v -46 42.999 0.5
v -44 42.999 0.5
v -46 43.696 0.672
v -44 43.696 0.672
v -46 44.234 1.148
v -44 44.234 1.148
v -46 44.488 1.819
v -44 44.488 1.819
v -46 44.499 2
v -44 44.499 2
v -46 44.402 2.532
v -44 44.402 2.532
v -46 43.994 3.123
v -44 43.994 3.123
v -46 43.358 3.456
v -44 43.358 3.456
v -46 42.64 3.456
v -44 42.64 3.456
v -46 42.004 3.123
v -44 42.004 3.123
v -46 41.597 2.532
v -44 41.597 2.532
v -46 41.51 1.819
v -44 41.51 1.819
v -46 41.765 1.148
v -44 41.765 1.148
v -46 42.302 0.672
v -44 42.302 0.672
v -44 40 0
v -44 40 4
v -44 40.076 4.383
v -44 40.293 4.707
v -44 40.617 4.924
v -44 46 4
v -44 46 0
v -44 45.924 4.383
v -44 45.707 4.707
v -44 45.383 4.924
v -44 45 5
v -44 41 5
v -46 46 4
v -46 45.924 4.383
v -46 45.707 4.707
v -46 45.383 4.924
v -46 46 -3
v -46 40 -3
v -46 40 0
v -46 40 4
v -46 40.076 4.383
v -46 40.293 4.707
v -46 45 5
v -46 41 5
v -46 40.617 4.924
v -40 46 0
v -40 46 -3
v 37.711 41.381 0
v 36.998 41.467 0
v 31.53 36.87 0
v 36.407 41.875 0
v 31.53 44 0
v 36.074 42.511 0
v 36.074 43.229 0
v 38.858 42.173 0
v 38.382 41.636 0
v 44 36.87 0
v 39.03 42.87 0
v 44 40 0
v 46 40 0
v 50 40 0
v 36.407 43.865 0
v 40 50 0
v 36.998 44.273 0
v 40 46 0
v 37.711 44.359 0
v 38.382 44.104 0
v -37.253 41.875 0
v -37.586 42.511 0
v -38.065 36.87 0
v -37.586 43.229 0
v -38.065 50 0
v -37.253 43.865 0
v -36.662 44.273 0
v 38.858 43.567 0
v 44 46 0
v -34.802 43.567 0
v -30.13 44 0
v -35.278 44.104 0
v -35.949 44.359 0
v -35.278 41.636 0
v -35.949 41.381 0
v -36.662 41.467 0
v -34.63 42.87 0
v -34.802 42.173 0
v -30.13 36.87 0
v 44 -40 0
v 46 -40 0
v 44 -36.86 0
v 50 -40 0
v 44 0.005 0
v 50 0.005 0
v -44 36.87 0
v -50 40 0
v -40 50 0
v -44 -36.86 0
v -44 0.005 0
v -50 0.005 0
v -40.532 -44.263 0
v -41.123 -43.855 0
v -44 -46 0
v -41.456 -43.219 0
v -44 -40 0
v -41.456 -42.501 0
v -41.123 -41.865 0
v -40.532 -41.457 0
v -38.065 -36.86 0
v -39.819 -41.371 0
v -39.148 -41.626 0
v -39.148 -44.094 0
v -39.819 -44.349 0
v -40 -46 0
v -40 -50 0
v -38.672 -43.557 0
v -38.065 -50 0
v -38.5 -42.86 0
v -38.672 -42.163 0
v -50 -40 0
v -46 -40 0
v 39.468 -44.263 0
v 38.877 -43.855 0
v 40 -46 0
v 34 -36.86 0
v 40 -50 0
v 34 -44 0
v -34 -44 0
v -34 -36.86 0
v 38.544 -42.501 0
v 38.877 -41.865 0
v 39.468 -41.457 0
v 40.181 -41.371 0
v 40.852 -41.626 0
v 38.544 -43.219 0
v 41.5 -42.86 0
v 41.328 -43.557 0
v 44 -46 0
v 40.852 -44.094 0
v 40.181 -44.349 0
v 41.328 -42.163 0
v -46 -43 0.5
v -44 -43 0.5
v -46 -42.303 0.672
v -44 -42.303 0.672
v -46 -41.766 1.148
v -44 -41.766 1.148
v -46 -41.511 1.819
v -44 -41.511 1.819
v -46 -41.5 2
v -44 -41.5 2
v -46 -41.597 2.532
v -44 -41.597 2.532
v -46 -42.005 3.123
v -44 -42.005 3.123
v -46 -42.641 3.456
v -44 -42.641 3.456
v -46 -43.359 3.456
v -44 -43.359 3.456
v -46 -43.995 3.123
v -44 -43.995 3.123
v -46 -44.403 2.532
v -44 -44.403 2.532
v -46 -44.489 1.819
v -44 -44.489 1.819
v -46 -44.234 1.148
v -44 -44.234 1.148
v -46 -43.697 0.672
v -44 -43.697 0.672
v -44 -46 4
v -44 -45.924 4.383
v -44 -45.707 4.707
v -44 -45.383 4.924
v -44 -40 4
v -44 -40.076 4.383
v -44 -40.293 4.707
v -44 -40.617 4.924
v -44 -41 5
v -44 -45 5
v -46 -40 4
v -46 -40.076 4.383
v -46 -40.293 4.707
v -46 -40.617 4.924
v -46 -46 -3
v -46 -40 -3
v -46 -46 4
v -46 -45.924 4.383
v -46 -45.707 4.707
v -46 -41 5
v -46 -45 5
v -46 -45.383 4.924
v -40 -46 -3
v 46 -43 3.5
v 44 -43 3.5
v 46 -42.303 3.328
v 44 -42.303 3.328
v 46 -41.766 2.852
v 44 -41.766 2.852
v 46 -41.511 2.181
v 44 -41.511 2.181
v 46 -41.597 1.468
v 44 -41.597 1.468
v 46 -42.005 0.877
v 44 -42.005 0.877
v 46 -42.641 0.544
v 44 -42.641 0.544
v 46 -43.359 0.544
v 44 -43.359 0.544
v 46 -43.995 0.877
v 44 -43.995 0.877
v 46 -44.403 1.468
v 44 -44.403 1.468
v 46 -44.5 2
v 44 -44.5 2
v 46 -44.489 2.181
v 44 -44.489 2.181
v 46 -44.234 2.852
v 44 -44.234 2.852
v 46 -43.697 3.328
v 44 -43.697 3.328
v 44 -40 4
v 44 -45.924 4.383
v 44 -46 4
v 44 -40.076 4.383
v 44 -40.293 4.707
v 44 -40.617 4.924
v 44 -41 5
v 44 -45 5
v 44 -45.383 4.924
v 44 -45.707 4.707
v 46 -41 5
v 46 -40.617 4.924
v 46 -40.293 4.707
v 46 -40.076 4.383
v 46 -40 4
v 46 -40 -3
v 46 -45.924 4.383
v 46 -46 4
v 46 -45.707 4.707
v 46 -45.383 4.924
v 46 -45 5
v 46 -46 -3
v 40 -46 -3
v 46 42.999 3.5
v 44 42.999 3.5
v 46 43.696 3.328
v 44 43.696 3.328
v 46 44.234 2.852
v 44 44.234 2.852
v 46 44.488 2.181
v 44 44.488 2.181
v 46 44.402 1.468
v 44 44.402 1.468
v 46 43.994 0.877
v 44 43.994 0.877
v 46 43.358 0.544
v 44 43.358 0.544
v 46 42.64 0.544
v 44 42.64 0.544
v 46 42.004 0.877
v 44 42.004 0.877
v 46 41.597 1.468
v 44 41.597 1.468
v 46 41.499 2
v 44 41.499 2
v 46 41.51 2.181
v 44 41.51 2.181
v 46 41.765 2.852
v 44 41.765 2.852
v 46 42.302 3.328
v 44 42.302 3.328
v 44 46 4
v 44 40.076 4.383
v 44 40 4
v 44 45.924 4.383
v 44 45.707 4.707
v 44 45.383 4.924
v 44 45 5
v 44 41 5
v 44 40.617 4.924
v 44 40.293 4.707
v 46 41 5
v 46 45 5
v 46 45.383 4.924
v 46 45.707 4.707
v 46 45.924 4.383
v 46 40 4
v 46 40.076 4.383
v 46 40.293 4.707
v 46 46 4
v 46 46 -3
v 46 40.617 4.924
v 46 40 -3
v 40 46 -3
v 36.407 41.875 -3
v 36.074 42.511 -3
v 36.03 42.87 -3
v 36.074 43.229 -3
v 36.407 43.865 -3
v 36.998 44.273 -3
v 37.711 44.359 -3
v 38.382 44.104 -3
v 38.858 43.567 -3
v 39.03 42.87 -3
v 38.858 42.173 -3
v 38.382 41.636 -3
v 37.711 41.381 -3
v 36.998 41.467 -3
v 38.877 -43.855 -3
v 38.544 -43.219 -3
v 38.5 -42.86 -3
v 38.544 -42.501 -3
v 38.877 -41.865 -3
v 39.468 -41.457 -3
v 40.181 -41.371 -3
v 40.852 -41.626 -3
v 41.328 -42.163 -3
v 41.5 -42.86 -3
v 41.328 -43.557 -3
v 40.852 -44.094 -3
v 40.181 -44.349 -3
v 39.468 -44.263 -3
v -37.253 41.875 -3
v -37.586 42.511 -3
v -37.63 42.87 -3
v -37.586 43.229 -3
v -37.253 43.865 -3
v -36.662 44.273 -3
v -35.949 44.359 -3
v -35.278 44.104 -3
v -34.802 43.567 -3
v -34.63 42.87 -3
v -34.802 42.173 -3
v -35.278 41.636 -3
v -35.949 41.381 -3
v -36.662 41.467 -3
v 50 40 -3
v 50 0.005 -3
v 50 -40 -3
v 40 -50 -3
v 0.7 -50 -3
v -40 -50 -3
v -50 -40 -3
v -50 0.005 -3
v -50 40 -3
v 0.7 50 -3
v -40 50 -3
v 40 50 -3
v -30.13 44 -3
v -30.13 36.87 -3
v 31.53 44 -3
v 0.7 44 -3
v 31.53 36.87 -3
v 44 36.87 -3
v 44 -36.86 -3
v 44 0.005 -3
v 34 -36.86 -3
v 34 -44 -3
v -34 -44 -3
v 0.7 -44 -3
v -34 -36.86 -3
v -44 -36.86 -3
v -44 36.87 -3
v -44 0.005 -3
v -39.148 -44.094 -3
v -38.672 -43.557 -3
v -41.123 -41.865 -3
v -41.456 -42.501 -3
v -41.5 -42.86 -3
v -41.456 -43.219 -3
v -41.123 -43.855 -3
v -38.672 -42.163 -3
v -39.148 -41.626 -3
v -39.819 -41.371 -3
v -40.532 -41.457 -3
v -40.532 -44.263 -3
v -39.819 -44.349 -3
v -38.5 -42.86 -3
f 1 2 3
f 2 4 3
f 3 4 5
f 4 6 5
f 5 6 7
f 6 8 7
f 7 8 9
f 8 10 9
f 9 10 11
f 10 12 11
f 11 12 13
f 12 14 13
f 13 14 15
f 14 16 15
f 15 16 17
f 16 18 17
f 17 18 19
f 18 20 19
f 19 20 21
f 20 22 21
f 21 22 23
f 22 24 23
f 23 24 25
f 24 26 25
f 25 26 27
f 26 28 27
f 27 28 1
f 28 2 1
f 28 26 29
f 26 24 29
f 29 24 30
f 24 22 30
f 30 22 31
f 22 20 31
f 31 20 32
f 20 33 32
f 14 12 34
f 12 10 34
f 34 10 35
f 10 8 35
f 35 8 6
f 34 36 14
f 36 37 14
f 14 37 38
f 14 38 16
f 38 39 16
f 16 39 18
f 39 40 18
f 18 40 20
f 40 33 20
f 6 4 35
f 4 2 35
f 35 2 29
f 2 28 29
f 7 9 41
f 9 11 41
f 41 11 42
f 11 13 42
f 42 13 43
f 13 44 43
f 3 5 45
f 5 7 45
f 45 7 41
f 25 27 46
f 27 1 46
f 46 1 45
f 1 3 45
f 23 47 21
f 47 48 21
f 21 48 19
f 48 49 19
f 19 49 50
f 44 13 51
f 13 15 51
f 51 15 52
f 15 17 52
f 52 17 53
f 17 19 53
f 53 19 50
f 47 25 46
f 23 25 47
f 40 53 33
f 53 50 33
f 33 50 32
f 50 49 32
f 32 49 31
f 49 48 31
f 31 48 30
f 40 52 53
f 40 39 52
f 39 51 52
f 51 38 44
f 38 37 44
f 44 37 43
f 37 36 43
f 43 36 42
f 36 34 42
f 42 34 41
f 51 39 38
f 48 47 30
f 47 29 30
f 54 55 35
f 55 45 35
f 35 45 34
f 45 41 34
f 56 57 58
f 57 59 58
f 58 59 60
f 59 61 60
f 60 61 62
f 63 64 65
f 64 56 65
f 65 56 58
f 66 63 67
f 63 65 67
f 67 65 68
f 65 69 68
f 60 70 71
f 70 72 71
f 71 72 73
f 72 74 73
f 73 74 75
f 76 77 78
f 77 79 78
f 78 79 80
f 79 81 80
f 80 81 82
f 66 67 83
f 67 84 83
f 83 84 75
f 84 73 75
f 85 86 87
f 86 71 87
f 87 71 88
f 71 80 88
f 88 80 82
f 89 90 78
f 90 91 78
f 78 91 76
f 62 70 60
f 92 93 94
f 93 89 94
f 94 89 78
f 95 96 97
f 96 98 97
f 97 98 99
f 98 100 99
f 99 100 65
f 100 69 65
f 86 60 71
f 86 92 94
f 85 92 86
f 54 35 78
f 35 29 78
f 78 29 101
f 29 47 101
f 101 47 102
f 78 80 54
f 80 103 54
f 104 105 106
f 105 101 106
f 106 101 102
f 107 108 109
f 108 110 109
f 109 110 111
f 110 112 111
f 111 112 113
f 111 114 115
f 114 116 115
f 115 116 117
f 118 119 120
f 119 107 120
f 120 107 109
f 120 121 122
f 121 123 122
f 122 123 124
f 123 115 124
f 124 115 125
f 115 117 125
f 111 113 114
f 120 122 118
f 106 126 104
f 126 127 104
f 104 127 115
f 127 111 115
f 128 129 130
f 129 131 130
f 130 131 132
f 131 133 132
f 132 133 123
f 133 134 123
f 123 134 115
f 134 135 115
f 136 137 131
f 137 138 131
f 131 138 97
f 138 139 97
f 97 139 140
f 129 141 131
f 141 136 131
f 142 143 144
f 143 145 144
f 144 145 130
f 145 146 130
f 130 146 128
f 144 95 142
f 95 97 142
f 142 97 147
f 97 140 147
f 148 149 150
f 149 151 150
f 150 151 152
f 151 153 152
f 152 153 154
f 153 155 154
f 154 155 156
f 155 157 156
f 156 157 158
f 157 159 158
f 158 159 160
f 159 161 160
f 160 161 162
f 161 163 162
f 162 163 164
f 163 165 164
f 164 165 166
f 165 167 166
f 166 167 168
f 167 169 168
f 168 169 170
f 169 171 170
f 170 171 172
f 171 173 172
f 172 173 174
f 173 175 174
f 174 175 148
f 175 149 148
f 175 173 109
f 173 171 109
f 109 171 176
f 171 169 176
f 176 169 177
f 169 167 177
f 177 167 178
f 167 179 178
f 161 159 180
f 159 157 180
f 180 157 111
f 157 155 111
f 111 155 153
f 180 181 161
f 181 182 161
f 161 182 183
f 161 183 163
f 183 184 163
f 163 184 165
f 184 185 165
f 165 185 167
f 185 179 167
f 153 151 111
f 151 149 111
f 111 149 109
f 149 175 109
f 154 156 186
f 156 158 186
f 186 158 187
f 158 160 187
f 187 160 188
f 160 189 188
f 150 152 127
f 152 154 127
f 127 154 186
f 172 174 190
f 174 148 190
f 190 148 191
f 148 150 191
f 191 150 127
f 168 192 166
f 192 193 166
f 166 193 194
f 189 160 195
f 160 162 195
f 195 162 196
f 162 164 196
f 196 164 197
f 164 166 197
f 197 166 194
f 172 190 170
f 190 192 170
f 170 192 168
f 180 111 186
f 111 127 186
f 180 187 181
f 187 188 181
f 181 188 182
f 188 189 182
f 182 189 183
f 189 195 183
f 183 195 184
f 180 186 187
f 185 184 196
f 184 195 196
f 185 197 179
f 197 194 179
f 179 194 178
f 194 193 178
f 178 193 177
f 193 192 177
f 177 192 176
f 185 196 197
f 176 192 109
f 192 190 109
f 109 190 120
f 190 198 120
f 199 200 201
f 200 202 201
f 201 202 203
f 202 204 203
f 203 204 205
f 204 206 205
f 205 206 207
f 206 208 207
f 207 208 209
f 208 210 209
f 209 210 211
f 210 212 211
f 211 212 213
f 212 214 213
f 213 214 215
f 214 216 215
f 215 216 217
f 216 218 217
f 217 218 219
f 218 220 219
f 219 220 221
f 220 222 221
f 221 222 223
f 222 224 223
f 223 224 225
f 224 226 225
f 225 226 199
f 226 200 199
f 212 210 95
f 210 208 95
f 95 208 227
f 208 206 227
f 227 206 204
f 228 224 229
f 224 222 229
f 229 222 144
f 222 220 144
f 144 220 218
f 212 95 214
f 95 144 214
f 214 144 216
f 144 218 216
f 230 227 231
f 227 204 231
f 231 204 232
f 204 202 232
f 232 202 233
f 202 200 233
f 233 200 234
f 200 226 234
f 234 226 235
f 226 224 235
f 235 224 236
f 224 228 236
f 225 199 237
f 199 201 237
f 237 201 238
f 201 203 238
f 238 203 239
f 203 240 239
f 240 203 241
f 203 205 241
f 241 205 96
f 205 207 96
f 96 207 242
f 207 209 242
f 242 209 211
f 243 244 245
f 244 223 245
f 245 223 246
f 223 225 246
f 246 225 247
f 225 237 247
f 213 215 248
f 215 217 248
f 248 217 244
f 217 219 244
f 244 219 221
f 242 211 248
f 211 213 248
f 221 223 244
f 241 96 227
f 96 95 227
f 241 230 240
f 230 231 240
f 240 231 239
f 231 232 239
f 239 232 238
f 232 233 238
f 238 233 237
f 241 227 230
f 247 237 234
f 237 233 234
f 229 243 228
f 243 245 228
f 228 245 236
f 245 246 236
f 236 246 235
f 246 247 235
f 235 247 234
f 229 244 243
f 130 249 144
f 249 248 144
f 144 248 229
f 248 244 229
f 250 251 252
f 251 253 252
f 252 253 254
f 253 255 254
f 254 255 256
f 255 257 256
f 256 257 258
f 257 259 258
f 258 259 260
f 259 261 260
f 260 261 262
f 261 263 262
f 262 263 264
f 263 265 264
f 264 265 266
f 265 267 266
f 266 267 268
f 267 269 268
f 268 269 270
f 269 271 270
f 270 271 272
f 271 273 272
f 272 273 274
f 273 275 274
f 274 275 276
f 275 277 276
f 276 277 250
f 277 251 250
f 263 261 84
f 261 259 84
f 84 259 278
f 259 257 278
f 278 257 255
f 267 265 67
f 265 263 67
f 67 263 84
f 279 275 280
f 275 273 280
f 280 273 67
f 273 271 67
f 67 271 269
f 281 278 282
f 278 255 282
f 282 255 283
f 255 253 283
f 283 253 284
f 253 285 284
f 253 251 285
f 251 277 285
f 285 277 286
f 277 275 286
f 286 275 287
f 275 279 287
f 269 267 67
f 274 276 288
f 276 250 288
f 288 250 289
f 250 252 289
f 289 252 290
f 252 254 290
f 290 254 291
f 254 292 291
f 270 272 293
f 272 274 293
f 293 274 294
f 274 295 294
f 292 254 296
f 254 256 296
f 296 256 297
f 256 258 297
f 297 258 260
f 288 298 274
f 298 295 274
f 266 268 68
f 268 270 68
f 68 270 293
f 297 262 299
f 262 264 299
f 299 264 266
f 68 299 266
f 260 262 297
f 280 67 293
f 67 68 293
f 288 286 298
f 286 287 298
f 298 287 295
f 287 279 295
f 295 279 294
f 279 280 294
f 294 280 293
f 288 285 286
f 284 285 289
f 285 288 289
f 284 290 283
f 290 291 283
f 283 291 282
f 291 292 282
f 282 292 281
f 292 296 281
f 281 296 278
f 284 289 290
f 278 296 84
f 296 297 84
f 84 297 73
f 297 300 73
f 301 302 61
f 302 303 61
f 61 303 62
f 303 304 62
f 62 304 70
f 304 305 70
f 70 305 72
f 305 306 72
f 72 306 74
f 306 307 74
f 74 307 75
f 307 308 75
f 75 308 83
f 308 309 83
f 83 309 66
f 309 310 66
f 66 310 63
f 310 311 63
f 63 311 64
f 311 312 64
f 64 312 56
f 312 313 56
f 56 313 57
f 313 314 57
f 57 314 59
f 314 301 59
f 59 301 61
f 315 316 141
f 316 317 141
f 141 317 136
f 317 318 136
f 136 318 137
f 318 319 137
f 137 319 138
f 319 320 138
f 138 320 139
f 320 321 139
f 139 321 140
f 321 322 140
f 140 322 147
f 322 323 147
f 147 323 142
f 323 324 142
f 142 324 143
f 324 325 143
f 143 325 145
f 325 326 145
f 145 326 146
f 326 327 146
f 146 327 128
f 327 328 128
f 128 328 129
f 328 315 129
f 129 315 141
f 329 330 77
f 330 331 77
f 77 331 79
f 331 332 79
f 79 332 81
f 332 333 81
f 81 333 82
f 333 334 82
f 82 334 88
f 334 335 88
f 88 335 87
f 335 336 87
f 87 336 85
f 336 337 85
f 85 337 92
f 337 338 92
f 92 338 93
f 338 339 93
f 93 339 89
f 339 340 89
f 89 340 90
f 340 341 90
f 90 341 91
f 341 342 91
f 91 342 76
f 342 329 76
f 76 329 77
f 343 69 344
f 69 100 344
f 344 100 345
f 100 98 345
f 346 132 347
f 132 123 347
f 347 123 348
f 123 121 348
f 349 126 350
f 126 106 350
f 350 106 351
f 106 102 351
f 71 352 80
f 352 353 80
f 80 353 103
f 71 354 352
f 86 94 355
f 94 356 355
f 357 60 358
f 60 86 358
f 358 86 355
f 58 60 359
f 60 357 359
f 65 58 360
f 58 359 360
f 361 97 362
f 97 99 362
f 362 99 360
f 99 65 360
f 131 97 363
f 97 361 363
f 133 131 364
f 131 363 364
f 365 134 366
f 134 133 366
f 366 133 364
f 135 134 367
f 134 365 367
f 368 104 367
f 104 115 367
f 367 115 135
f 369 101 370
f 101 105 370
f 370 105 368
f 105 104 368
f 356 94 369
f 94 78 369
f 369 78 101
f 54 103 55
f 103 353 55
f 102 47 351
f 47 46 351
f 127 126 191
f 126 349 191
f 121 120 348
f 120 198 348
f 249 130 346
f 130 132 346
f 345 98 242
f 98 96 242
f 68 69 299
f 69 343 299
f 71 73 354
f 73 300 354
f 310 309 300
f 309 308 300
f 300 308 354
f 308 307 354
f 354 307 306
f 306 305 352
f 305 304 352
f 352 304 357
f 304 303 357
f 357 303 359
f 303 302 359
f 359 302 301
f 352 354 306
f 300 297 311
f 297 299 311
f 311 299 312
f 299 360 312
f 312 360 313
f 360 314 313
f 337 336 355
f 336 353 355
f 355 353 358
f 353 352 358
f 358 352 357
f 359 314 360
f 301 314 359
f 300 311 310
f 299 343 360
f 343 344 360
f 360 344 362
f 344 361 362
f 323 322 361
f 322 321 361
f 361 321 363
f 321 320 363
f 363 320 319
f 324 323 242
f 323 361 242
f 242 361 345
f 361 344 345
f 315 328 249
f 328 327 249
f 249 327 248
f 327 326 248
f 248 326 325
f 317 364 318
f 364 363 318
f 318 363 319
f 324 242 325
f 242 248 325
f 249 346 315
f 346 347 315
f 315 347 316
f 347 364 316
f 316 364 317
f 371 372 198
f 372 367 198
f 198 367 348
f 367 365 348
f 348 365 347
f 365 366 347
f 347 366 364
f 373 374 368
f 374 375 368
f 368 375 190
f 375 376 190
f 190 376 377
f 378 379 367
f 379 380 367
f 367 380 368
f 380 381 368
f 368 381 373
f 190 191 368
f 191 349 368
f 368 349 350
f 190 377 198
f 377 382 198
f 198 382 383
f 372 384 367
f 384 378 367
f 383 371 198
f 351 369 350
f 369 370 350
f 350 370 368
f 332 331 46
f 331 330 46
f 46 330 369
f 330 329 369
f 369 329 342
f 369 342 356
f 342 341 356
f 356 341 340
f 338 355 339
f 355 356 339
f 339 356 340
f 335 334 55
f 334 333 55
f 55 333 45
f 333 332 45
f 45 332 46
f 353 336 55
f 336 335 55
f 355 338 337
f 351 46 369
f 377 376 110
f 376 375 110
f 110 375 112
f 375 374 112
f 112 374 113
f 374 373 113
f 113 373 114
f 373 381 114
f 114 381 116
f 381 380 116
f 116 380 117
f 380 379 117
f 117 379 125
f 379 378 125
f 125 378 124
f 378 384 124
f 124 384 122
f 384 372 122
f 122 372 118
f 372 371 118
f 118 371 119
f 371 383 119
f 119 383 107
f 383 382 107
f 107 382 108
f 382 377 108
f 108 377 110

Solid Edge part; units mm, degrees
sketch "Sketch1" plane through (0, 0, 0) normal (0, 0, 1) x (1, 0, 0)
  line L0 (-40, -50) -> (40, -50)
  line L1 (40, -50) -> (50, -50)
  line L2 (50, -50) -> (50, -40)
  line L3 (50, -40) -> (50, 40)
  line L4 (50, 50) -> (50, 40)
  line L5 (40, 50) -> (50, 50)
  line L6 (40, 50) -> (-40, 50)
  line L7 (-50, 50) -> (-40, 50)
  line L8 (-50, 40) -> (-50, 50)
  line L9 (-50, 40) -> (-50, -40)
  line L10 (-50, -40) -> (-50, -50)
  line L11 (-50, -50) -> (-40, -50)
extrude "Protrusion1" add sketch "Sketch1" against normal blind 5
sketch "Sketch2" plane through (0, 0, 0) normal (0, 0, 1) x (1, 0, 0)
  line L0 (50, 50) -> (40, 50)
  line L1 (40, 46) -> (40, 50)
  line L2 (40, 46) -> (46, 46)
  line L3 (46, 46) -> (46, 40)
  line L4 (46, 40) -> (50, 40)
  line L5 (50, 40) -> (50, 50)
  line L6 (50, -40) -> (50, -50)
  line L7 (50, -50) -> (40, -50)
  line L8 (40, -46) -> (40, -50)
  line L9 (46, -46) -> (40, -46)
  line L10 (46, -40) -> (46, -46)
  line L11 (46, -40) -> (50, -40)
  line L12 (-50, -50) -> (-40, -50)
  line L13 (-40, -46) -> (-40, -50)
  line L14 (-46, -46) -> (-40, -46)
  line L15 (-46, -40) -> (-46, -46)
  line L16 (-50, -40) -> (-46, -40)
  line L17 (-50, -40) -> (-50, -50)
  line L18 (-46, 40) -> (-46, 46)
  line L19 (-46, 46) -> (-40, 46)
  line L20 (-40, 46) -> (-40, 50)
  line L21 (-40, 50) -> (-50, 50)
  line L22 (-50, 50) -> (-50, 40)
  line L23 (-50, 40) -> (-46, 40)
  dimension "D1" = 10
  dimension "D2" = 4
  dimension "D3" = 10
  dimension "D4" = 4
  dimension "D5" = 10
  dimension "D6" = 10
  dimension "D7" = 4
  dimension "D8" = 4
  dimension "D9" = 4
  dimension "D10" = 10
  dimension "D11" = 10
  dimension "D12" = 4
  dimension "D13" = 10
  dimension "D14" = 10
  dimension "D15" = 4
  dimension "D16" = 4
extrude "ExtrudedCutout_1" cut sketch "Sketch2" against normal blind 11.3526
sketch "Sketch3" plane through (0, 0, 0) normal (0, 0, 1) x (1, 0, 0)
  circle A0 centre (-40, -42.86) radius 1.5
  circle A1 centre (-36.13, 42.87) radius 1.5
  circle A2 centre (40, -42.86) radius 1.5
  circle A3 centre (37.53, 42.87) radius 1.5
  dimension "D1" = 10
  dimension "D2" = 7.14
  dimension "D3" = 3
  dimension "D4" = 3
  dimension "D5" = 92.87
  dimension "D6" = 13.87
  dimension "D7" = 3
  dimension "D8" = 90
  dimension "D9" = 3
  dimension "D10" = 87.53
  dimension "D11" = 92.87
extrude "Cutout1" cut sketch "Sketch3" against normal blind 5
sketch "Sketch4" plane through (0, 0, 0) normal (0, 0, 1) x (0, 1, 0)
  line L0 (36.87, 44) -> (-36.86, 44)
  line L1 (-36.86, 44) -> (-36.86, 34)
  line L2 (-36.86, 34) -> (-44, 34)
  line L3 (-44, 34) -> (-44, -34)
  line L4 (-44, -34) -> (-36.86, -34)
  line L5 (-36.86, -34) -> (-36.86, -44)
  line L6 (-36.86, -44) -> (36.87, -44)
  line L7 (36.87, -44) -> (36.87, -31.53)
  line L8 (36.87, -31.53) -> (44, -31.53)
  line L9 (44, -31.53) -> (44, 30.13)
  line L10 (44, 30.13) -> (36.87, 30.13)
  line L11 (36.87, 30.13) -> (36.87, 44)
  dimension "D1" = 6
  dimension "D2" = 6
  dimension "D3" = 6
  dimension "D4" = 6
  dimension "D5" = 6
  dimension "D6" = 6
  dimension "D7" = 6
  dimension "D8" = 6
  dimension "D9" = 6
  dimension "D10" = 6
  dimension "D11" = 6
  dimension "D12" = 6
extrude "Cutout2" cut sketch "Sketch4" against normal blind 5
sketch "Sketch5" plane through (0, 0, 0) normal (0, 0, 1) x (1, 0, 0)
  line L0 (-46, 40) -> (-44, 40)
  line L1 (-44, 40) -> (-44, 46)
  line L2 (-44, 46) -> (-46, 46)
  line L3 (-46, 40) -> (-46, 46)
  line L4 (46, 46) -> (44, 46)
  line L5 (44, 46) -> (44, 40)
  line L6 (44, 40) -> (46, 40)
  line L7 (46, 40) -> (46, 46)
  line L8 (-46, -40) -> (-44, -40)
  line L9 (-44, -40) -> (-44, -46)
  line L10 (-44, -46) -> (-46, -46)
  line L11 (-46, -46) -> (-46, -40)
  line L12 (46, -46) -> (44, -46)
  line L13 (44, -46) -> (44, -40)
  line L14 (44, -40) -> (46, -40)
  line L15 (46, -40) -> (46, -46)
extrude "ExtrudedProtrusion_3" add sketch "Sketch5" along normal blind 5
sketch "Sketch6" plane through (-44, -43, 3) normal (1, 0, 0) x (0, 1, 0)
  circle A0 centre (0, -1) radius 1.5
  circle A1 centre (85.9991, -1) radius 1.5
  dimension "D1" = 3
  dimension "D2" = 3
  dimension "D3" = 3
  dimension "D4" = 3
  dimension "D5" = 2.9991
  dimension "D6" = 3
extrude "ExtrudedCutout_14" cut sketch "Sketch6" against normal blind 2
sketch "Sketch7" plane through (44, 43, 2.5) normal (-1, 0, 0) x (0, -1, 0)
  circle A0 centre (0.0009, -0.5) radius 1.5
  circle A1 centre (86, -0.5) radius 1.5
extrude "ExtrudedCutout_15" cut sketch "Sketch7" against normal blind 2
fillet "Round_2" radius 1 8 edges at (45, 40, 5) (45, 46, 5) (-45, 40, 5) (-45, 46, 5) (-45, -46, 5) (-45, -40, 5) (45, -46, 5) (45, -40, 5)
sketch "Sketch8" plane through (0, 0, -5) normal (0, 0, -1) x (0, -1, 0)
  line L0 (-50, -50) -> (50, -50)
  line L1 (50, -50) -> (50, 50)
  line L2 (50, 50) -> (-50, 50)
  line L3 (-50, 50) -> (-50, -50)
  dimension "D1" = 100
  dimension "D2" = 100
extrude "ExtrudedCutout_16" cut sketch "Sketch8" against normal blind 2
